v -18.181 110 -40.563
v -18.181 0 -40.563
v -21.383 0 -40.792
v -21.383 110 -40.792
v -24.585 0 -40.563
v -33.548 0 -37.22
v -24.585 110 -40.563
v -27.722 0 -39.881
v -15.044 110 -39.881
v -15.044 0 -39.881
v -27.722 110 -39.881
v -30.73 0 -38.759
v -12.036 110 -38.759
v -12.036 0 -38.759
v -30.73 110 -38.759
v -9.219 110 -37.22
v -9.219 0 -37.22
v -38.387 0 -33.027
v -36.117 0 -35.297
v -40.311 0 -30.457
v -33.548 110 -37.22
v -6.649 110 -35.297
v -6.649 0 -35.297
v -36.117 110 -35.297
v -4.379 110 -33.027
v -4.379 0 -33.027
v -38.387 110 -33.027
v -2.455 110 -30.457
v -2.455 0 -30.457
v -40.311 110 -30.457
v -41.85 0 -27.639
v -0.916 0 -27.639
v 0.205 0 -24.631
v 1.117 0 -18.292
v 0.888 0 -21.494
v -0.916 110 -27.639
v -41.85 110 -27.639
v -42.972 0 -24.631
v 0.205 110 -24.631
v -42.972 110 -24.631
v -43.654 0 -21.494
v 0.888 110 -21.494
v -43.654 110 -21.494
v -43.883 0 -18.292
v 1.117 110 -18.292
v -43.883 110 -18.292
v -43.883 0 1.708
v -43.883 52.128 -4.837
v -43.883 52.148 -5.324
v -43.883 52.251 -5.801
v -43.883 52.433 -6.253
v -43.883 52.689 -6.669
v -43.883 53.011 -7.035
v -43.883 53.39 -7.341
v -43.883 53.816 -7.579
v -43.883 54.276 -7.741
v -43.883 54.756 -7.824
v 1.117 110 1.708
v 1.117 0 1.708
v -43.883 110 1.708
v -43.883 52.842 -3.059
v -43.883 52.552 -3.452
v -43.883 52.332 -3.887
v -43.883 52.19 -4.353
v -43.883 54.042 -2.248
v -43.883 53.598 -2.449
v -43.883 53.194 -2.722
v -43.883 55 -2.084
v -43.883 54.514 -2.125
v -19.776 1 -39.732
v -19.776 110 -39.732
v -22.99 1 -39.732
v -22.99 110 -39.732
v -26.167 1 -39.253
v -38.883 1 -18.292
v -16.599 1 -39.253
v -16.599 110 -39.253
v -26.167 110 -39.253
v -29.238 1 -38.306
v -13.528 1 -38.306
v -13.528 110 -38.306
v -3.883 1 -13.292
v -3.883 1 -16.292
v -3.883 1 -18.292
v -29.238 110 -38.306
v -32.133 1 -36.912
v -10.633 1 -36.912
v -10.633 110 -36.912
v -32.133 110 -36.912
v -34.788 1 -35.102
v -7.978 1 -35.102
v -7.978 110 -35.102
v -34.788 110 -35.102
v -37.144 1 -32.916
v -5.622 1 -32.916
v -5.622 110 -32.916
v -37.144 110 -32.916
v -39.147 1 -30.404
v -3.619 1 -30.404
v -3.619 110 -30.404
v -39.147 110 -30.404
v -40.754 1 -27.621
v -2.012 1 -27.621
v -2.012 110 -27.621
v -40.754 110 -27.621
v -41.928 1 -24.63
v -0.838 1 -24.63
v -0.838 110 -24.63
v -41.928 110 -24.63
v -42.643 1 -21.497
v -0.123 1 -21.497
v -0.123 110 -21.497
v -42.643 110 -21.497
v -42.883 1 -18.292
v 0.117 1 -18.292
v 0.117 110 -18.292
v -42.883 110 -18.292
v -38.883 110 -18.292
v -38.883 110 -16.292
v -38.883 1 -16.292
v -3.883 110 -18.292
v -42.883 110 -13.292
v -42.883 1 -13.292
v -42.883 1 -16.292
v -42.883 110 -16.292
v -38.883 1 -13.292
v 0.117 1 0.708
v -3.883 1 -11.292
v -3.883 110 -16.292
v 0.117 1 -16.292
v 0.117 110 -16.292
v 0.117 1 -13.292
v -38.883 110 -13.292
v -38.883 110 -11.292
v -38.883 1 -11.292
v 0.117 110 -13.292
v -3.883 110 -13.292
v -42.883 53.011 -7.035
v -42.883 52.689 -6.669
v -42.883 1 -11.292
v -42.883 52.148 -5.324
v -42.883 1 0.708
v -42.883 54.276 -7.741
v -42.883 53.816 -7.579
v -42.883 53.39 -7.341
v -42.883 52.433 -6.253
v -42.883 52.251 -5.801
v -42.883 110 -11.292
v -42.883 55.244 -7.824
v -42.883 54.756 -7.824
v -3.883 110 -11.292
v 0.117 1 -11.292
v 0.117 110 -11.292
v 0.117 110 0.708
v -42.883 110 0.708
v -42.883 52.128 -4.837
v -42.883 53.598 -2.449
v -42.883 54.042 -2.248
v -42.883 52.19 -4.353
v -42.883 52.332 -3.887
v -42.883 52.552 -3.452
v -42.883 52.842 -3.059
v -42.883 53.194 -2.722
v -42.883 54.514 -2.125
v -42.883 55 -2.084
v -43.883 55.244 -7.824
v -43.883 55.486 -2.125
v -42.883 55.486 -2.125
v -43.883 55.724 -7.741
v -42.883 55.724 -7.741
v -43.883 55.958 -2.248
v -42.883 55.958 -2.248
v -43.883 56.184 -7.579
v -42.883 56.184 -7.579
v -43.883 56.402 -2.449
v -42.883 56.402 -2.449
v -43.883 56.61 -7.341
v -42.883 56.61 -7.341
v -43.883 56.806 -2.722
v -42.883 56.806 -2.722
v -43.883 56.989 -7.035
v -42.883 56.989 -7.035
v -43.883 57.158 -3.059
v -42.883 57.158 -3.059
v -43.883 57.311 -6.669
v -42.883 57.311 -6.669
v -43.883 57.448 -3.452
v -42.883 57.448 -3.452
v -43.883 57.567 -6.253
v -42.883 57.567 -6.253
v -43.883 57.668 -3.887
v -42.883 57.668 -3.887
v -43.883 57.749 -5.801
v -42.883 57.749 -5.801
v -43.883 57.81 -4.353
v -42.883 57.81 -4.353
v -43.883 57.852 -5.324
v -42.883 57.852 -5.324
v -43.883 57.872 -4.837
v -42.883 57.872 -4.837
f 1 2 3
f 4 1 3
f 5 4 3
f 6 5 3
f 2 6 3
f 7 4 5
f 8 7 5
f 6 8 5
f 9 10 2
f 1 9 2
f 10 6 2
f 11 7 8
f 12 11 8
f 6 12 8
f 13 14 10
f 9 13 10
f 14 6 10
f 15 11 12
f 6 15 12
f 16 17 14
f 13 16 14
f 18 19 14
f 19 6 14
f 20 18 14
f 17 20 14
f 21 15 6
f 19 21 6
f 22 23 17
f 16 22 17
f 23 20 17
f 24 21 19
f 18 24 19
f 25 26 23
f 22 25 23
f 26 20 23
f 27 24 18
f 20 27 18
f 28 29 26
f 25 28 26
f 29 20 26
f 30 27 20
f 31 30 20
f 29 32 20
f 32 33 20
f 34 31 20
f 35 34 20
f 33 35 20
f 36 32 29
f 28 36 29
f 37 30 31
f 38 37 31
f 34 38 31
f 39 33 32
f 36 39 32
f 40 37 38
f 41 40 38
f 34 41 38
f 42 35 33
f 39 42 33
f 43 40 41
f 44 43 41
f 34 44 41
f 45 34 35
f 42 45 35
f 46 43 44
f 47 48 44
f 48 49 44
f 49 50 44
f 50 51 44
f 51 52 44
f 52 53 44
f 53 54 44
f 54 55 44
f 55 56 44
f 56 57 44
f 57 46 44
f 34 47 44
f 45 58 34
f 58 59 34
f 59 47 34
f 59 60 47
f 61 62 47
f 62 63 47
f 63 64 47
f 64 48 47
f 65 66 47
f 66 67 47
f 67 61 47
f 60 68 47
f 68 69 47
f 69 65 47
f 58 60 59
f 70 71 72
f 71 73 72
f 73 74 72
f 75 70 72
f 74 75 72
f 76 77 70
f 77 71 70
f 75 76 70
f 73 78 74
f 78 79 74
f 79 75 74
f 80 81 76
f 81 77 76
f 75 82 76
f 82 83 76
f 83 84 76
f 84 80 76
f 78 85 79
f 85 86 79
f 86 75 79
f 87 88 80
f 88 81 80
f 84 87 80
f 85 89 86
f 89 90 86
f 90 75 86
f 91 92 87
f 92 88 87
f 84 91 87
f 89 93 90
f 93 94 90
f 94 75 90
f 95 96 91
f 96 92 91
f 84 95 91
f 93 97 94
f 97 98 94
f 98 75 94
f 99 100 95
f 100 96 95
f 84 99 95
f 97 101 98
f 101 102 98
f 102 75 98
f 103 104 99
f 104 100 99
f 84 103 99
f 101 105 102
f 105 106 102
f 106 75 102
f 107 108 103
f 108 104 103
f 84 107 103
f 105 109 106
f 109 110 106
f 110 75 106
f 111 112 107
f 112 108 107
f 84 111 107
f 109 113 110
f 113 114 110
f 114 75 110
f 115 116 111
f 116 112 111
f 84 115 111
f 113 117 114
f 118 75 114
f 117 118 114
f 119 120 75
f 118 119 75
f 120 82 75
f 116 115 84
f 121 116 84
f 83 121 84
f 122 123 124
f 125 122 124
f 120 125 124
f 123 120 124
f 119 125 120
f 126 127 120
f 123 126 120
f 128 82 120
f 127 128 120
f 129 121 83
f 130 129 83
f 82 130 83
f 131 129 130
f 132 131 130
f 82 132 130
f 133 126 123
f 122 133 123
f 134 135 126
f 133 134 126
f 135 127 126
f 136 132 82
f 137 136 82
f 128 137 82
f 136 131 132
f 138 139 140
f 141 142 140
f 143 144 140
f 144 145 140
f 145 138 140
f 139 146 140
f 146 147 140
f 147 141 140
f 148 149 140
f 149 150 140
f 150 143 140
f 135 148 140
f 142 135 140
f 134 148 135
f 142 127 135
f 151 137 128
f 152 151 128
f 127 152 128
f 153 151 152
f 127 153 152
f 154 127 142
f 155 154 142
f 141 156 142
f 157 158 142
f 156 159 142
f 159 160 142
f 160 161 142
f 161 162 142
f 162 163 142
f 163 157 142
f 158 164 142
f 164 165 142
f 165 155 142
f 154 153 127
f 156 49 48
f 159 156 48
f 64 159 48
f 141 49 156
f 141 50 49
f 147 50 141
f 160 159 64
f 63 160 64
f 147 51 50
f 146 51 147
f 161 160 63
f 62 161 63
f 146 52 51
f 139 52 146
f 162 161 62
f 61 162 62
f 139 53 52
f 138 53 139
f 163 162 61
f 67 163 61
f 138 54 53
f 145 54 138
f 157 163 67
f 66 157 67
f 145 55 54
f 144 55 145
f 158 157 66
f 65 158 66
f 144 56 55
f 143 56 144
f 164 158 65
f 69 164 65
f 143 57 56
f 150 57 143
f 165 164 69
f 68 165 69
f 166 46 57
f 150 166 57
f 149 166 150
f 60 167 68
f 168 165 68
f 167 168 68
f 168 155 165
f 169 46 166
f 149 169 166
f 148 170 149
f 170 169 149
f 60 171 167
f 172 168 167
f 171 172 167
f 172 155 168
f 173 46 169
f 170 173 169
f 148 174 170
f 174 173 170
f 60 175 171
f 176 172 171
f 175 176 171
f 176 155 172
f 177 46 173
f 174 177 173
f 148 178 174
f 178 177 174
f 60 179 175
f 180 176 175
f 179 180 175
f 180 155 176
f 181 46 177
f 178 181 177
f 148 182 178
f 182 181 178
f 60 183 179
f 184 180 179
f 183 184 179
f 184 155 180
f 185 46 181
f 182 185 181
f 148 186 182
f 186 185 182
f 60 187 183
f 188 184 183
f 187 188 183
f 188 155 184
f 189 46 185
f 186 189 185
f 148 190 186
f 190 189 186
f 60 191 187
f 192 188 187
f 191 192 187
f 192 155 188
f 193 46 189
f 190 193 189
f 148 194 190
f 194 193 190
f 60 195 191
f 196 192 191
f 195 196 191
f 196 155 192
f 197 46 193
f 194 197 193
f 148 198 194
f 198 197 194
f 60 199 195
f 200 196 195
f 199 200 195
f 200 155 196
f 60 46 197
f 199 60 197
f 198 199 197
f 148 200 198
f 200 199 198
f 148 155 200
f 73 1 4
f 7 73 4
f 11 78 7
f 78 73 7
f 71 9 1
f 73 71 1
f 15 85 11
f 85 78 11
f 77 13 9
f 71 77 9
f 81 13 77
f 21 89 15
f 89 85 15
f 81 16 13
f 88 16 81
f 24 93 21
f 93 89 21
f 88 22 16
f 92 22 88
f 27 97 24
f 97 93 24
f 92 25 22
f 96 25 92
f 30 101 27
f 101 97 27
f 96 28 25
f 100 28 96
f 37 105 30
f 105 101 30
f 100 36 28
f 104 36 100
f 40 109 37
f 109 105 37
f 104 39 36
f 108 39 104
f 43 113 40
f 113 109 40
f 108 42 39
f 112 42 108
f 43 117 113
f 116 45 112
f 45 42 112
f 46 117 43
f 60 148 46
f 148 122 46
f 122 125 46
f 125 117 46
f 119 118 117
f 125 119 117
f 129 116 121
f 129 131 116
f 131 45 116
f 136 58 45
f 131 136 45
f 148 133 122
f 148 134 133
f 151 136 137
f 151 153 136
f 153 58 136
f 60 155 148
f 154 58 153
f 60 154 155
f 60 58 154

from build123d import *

# Parameters (mm, degrees)
BOSS_EXTRUDE1_DEPTH = 110
CUT_EXTRUDE1_DEPTH  = 109
SKETCH3_R           = 2.875
CUT_EXTRUDE2_DEPTH  = 5


with BuildPart() as part:
    # Sketch1 → Boss-Extrude1 (new body)
    with BuildSketch(Plane(origin=(0, 0, 0), x_dir=(1, 0, 0), z_dir=(0, 1, 0))):
        with BuildLine():
            Line((-43.883093525, -1.707733813), (1.116906475, -1.707733813))
            Line((1.116906475, -1.707733813), (1.116906475, 18.292266187))
            ThreePointArc((1.116906475, 18.292266187), (-21.383093525, 40.792266187), (-43.883093525, 18.292266187))
            Line((-43.883093525, 18.292266187), (-43.883093525, -1.707733813))
        make_face()
    extrude(amount=BOSS_EXTRUDE1_DEPTH)

    # Sketch2 → Cut-Extrude1 (cut)
    with BuildSketch(Plane(origin=(0, 110, 0), x_dir=(1, 0, 0), z_dir=(0, 1, 0))):
        with BuildLine():
            Line((-42.883093525, 16.292266187), (-42.883093525, 13.292266187))
            Line((-42.883093525, 13.292266187), (-38.883093525, 13.292266187))
            Line((-38.883093525, 13.292266187), (-38.883093525, 11.292266187))
            Line((-38.883093525, 11.292266187), (-42.883093525, 11.292266187))
            Line((-42.883093525, 11.292266187), (-42.883093525, -0.707733813))
            Line((-42.883093525, -0.707733813), (0.116906475, -0.707733813))
            Line((0.116906475, -0.707733813), (0.116906475, 11.292266187))
            Line((0.116906475, 11.292266187), (-3.883093525, 11.292266187))
            Line((-3.883093525, 11.292266187), (-3.883093525, 13.292266187))
            Line((-3.883093525, 13.292266187), (0.116906475, 13.292266187))
            Line((0.116906475, 13.292266187), (0.116906475, 16.292266187))
            Line((0.116906475, 16.292266187), (-3.883093525, 16.292266187))
            Line((-3.883093525, 16.292266187), (-3.883093525, 18.292266187))
            Line((-3.883093525, 18.292266187), (0.116906475, 18.292266187))
            ThreePointArc((0.116906475, 18.292266187), (-21.383093525, 39.792266187), (-42.883093525, 18.292266187))
            Line((-42.883093525, 18.292266187), (-38.883093525, 18.292266187))
            Line((-38.883093525, 18.292266187), (-38.883093525, 16.292266187))
            Line((-38.883093525, 16.292266187), (-42.883093525, 16.292266187))
        make_face()
    extrude(amount=-CUT_EXTRUDE1_DEPTH, mode=Mode.SUBTRACT)

    # Sketch3 → Cut-Extrude2 (cut)
    with BuildSketch(Plane.ZY.offset(43.883093525)):
        with Locations((-4.958932854, 55)):
            Circle(SKETCH3_R)
    extrude(amount=-CUT_EXTRUDE2_DEPTH, mode=Mode.SUBTRACT)


solid = part.part
